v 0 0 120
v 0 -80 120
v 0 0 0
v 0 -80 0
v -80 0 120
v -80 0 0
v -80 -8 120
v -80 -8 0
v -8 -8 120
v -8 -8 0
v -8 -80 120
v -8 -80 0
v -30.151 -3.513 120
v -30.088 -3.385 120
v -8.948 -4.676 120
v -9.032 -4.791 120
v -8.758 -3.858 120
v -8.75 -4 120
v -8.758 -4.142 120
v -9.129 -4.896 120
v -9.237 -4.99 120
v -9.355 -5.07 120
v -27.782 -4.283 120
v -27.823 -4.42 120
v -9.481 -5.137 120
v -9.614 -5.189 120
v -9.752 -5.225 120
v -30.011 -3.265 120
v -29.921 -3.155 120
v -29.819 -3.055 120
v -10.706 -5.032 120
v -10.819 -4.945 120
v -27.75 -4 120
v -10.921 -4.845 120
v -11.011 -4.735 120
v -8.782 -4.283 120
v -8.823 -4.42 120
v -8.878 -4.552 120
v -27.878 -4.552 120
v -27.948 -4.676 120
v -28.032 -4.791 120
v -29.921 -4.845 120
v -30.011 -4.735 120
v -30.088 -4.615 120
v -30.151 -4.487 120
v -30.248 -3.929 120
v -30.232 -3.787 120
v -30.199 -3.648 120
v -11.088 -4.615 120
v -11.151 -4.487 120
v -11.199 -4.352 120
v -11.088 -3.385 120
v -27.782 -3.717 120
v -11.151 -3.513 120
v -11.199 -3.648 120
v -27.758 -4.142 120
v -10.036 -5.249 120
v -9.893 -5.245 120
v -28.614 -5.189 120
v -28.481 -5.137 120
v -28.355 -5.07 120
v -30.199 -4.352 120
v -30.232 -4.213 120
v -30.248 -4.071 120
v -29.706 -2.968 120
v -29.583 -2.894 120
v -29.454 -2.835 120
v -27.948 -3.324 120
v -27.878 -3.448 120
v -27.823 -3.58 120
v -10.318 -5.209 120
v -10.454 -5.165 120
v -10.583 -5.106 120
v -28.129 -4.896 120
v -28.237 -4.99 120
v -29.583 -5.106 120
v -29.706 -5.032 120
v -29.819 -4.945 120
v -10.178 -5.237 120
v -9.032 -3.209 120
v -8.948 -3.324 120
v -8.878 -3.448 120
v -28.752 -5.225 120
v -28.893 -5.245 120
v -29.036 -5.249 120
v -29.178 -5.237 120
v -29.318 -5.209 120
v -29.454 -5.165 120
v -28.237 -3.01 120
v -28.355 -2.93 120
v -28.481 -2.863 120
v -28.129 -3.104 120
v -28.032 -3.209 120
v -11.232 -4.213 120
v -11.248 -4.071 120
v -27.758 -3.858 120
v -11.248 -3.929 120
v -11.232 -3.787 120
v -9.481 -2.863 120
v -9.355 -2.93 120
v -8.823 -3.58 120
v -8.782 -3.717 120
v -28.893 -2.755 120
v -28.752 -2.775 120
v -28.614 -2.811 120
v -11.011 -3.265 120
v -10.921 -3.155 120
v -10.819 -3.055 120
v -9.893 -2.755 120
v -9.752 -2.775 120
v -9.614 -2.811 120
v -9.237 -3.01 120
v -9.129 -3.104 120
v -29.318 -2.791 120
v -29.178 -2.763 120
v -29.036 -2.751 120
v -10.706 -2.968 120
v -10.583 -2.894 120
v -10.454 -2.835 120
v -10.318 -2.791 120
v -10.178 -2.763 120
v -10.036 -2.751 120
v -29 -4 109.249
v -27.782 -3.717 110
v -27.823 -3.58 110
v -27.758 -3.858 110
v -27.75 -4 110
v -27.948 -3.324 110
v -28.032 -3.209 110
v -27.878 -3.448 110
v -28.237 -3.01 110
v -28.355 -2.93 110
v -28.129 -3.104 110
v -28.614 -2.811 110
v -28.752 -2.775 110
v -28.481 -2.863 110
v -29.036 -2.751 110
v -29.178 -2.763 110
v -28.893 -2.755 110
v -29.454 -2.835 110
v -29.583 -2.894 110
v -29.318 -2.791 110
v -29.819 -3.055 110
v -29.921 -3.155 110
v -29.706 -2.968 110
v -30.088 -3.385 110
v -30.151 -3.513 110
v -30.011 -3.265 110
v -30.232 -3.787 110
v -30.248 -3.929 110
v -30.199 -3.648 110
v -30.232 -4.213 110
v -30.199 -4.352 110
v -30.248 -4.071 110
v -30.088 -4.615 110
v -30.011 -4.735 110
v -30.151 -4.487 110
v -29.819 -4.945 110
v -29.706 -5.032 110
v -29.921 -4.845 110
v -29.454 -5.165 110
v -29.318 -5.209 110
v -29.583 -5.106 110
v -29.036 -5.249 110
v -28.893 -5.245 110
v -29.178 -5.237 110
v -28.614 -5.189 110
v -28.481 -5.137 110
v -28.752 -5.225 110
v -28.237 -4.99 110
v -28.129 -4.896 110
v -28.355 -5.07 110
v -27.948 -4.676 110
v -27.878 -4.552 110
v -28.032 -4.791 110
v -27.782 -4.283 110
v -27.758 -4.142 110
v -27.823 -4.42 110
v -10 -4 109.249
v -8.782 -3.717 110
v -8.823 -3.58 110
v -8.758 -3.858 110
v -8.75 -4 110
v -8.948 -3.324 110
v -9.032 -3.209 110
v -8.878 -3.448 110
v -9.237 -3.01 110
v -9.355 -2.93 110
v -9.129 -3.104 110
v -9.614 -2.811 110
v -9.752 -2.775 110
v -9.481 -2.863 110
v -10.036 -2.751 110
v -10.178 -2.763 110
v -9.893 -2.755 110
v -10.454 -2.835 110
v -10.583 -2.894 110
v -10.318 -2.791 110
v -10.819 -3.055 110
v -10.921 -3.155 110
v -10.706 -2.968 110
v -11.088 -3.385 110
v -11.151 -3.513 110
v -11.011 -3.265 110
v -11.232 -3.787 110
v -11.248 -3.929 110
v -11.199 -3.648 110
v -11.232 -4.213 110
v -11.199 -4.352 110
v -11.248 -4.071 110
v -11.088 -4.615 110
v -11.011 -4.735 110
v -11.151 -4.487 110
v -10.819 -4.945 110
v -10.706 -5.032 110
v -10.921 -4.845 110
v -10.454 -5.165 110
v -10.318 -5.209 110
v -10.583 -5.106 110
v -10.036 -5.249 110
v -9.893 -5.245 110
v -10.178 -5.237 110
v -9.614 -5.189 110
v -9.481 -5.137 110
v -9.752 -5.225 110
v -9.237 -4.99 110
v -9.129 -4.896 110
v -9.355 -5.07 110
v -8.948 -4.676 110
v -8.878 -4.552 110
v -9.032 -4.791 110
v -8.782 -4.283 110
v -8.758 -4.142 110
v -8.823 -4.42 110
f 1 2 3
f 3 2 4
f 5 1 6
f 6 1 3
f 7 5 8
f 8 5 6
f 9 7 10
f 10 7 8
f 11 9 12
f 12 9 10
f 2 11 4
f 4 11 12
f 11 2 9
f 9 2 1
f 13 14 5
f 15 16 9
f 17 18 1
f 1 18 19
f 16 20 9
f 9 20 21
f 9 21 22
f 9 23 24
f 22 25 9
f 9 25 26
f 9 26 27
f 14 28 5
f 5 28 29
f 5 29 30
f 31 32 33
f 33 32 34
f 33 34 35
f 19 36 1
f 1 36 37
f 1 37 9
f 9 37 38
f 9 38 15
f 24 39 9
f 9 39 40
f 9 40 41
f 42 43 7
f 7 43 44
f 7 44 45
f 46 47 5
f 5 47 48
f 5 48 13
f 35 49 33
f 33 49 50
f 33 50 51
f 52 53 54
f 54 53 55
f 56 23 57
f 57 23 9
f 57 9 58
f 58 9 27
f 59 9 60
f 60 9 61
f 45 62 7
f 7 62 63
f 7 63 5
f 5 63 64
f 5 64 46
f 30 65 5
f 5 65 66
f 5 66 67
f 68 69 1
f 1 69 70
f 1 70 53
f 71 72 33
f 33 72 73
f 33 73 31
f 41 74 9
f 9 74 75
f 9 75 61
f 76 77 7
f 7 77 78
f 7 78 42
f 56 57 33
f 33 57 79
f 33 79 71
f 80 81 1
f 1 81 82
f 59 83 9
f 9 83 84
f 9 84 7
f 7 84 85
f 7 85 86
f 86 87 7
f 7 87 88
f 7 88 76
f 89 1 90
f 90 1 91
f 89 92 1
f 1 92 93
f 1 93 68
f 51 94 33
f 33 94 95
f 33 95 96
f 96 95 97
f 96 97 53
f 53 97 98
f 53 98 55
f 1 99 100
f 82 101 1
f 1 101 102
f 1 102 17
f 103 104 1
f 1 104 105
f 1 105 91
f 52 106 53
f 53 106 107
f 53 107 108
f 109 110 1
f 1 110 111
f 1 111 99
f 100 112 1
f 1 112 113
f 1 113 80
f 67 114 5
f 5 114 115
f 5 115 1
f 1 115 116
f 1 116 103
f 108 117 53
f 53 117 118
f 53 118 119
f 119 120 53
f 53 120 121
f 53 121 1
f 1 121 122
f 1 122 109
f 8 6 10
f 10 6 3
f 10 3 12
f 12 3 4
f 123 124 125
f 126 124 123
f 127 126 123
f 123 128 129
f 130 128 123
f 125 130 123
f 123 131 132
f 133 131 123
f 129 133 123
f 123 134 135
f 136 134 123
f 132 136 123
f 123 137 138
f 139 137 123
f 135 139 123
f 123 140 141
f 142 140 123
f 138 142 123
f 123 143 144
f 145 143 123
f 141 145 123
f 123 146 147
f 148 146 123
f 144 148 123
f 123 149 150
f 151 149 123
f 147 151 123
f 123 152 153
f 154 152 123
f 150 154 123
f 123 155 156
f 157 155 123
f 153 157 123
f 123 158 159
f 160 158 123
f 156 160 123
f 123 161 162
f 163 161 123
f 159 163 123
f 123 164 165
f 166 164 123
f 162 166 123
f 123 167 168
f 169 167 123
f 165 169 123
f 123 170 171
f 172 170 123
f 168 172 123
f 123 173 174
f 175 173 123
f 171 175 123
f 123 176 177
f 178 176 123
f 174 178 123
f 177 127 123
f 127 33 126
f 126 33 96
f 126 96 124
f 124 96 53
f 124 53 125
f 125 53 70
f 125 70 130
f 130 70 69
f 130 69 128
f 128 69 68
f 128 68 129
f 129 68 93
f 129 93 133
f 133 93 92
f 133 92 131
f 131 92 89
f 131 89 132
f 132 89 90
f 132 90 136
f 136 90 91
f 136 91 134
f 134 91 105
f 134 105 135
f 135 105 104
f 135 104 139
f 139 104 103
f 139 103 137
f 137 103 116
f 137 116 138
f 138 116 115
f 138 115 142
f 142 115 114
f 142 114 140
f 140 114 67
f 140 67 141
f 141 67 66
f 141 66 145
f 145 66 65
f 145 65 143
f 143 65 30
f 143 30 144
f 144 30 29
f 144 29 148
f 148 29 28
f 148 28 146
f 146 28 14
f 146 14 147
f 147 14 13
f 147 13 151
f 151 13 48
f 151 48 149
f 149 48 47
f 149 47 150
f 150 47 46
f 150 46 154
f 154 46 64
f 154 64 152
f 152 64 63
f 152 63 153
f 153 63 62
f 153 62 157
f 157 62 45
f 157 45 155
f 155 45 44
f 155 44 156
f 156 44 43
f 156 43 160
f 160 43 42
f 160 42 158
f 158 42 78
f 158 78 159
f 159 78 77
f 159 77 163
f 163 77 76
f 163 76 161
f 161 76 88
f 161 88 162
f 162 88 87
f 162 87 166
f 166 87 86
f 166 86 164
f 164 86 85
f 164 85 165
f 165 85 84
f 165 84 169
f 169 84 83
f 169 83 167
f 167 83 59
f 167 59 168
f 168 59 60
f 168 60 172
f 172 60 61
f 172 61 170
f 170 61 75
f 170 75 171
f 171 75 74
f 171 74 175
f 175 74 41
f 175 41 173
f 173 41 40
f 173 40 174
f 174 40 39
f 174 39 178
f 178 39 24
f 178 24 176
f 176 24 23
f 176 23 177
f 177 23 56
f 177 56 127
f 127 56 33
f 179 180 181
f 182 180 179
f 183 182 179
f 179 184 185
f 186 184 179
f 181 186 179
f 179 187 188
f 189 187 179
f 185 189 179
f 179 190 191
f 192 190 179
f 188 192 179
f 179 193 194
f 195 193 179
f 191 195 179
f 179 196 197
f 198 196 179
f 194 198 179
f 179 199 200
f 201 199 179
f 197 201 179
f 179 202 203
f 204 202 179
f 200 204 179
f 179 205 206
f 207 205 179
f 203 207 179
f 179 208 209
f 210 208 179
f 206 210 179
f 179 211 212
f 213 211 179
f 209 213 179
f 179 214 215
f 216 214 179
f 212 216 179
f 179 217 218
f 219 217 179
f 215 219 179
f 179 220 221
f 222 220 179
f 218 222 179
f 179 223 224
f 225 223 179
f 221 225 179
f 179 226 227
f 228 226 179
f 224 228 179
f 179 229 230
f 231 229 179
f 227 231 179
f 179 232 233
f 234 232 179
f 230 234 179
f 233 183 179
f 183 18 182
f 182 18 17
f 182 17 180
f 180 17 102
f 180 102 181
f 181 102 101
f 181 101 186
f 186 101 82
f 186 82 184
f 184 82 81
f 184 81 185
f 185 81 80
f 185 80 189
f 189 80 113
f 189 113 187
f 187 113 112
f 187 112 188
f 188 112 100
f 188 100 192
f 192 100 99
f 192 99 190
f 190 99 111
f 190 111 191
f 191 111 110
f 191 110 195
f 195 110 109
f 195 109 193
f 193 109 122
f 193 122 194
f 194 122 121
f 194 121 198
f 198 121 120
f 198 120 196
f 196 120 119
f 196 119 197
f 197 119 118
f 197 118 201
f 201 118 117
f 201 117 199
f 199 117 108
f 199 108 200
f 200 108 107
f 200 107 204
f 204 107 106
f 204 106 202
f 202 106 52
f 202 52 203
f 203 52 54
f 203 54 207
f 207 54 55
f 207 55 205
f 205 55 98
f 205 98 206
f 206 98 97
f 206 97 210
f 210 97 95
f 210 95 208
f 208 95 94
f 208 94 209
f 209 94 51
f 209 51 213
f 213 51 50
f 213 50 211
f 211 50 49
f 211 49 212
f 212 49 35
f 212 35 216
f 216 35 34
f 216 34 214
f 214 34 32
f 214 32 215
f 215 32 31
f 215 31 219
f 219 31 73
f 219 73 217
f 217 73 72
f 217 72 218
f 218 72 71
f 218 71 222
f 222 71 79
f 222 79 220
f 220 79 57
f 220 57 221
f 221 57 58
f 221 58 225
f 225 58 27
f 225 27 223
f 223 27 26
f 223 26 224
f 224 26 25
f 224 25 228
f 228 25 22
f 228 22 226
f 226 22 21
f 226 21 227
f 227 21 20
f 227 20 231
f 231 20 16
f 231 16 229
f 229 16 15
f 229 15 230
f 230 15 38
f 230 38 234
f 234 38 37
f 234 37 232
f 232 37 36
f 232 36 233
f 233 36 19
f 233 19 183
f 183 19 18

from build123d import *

# Parameters (mm, degrees)
ESTRUSIONE_ESTRUSIONE1_DEPTH = 120
FORO_FILETTATO_M3_1_D        = 2.5
FORO_FILETTATO_M3_1_DEPTH    = 10
FORO_FILETTATO_M3_1_TIP      = 0.751075774


with BuildPart() as part:
    # Schizzo1 → Estrusione-Estrusione1 (new body)
    with BuildSketch(Plane.XY):
        Polygon((0, 0), (-80, 0), (-80, -8), (-8, -8), (-8, -80), (0, -80), align=None)
    extrude(amount=ESTRUSIONE_ESTRUSIONE1_DEPTH)

    # Foro filettato M3-1
    with Locations(Plane.XY.offset(120)):
        with Locations((-10, -4), (-29, -4)):
            Hole(FORO_FILETTATO_M3_1_D / 2, depth=FORO_FILETTATO_M3_1_DEPTH)
            with Locations((0, 0, -(FORO_FILETTATO_M3_1_DEPTH + FORO_FILETTATO_M3_1_TIP / 2))):  # 118° drill point
                Cone(0, FORO_FILETTATO_M3_1_D / 2, FORO_FILETTATO_M3_1_TIP, mode=Mode.SUBTRACT)


solid = part.part
